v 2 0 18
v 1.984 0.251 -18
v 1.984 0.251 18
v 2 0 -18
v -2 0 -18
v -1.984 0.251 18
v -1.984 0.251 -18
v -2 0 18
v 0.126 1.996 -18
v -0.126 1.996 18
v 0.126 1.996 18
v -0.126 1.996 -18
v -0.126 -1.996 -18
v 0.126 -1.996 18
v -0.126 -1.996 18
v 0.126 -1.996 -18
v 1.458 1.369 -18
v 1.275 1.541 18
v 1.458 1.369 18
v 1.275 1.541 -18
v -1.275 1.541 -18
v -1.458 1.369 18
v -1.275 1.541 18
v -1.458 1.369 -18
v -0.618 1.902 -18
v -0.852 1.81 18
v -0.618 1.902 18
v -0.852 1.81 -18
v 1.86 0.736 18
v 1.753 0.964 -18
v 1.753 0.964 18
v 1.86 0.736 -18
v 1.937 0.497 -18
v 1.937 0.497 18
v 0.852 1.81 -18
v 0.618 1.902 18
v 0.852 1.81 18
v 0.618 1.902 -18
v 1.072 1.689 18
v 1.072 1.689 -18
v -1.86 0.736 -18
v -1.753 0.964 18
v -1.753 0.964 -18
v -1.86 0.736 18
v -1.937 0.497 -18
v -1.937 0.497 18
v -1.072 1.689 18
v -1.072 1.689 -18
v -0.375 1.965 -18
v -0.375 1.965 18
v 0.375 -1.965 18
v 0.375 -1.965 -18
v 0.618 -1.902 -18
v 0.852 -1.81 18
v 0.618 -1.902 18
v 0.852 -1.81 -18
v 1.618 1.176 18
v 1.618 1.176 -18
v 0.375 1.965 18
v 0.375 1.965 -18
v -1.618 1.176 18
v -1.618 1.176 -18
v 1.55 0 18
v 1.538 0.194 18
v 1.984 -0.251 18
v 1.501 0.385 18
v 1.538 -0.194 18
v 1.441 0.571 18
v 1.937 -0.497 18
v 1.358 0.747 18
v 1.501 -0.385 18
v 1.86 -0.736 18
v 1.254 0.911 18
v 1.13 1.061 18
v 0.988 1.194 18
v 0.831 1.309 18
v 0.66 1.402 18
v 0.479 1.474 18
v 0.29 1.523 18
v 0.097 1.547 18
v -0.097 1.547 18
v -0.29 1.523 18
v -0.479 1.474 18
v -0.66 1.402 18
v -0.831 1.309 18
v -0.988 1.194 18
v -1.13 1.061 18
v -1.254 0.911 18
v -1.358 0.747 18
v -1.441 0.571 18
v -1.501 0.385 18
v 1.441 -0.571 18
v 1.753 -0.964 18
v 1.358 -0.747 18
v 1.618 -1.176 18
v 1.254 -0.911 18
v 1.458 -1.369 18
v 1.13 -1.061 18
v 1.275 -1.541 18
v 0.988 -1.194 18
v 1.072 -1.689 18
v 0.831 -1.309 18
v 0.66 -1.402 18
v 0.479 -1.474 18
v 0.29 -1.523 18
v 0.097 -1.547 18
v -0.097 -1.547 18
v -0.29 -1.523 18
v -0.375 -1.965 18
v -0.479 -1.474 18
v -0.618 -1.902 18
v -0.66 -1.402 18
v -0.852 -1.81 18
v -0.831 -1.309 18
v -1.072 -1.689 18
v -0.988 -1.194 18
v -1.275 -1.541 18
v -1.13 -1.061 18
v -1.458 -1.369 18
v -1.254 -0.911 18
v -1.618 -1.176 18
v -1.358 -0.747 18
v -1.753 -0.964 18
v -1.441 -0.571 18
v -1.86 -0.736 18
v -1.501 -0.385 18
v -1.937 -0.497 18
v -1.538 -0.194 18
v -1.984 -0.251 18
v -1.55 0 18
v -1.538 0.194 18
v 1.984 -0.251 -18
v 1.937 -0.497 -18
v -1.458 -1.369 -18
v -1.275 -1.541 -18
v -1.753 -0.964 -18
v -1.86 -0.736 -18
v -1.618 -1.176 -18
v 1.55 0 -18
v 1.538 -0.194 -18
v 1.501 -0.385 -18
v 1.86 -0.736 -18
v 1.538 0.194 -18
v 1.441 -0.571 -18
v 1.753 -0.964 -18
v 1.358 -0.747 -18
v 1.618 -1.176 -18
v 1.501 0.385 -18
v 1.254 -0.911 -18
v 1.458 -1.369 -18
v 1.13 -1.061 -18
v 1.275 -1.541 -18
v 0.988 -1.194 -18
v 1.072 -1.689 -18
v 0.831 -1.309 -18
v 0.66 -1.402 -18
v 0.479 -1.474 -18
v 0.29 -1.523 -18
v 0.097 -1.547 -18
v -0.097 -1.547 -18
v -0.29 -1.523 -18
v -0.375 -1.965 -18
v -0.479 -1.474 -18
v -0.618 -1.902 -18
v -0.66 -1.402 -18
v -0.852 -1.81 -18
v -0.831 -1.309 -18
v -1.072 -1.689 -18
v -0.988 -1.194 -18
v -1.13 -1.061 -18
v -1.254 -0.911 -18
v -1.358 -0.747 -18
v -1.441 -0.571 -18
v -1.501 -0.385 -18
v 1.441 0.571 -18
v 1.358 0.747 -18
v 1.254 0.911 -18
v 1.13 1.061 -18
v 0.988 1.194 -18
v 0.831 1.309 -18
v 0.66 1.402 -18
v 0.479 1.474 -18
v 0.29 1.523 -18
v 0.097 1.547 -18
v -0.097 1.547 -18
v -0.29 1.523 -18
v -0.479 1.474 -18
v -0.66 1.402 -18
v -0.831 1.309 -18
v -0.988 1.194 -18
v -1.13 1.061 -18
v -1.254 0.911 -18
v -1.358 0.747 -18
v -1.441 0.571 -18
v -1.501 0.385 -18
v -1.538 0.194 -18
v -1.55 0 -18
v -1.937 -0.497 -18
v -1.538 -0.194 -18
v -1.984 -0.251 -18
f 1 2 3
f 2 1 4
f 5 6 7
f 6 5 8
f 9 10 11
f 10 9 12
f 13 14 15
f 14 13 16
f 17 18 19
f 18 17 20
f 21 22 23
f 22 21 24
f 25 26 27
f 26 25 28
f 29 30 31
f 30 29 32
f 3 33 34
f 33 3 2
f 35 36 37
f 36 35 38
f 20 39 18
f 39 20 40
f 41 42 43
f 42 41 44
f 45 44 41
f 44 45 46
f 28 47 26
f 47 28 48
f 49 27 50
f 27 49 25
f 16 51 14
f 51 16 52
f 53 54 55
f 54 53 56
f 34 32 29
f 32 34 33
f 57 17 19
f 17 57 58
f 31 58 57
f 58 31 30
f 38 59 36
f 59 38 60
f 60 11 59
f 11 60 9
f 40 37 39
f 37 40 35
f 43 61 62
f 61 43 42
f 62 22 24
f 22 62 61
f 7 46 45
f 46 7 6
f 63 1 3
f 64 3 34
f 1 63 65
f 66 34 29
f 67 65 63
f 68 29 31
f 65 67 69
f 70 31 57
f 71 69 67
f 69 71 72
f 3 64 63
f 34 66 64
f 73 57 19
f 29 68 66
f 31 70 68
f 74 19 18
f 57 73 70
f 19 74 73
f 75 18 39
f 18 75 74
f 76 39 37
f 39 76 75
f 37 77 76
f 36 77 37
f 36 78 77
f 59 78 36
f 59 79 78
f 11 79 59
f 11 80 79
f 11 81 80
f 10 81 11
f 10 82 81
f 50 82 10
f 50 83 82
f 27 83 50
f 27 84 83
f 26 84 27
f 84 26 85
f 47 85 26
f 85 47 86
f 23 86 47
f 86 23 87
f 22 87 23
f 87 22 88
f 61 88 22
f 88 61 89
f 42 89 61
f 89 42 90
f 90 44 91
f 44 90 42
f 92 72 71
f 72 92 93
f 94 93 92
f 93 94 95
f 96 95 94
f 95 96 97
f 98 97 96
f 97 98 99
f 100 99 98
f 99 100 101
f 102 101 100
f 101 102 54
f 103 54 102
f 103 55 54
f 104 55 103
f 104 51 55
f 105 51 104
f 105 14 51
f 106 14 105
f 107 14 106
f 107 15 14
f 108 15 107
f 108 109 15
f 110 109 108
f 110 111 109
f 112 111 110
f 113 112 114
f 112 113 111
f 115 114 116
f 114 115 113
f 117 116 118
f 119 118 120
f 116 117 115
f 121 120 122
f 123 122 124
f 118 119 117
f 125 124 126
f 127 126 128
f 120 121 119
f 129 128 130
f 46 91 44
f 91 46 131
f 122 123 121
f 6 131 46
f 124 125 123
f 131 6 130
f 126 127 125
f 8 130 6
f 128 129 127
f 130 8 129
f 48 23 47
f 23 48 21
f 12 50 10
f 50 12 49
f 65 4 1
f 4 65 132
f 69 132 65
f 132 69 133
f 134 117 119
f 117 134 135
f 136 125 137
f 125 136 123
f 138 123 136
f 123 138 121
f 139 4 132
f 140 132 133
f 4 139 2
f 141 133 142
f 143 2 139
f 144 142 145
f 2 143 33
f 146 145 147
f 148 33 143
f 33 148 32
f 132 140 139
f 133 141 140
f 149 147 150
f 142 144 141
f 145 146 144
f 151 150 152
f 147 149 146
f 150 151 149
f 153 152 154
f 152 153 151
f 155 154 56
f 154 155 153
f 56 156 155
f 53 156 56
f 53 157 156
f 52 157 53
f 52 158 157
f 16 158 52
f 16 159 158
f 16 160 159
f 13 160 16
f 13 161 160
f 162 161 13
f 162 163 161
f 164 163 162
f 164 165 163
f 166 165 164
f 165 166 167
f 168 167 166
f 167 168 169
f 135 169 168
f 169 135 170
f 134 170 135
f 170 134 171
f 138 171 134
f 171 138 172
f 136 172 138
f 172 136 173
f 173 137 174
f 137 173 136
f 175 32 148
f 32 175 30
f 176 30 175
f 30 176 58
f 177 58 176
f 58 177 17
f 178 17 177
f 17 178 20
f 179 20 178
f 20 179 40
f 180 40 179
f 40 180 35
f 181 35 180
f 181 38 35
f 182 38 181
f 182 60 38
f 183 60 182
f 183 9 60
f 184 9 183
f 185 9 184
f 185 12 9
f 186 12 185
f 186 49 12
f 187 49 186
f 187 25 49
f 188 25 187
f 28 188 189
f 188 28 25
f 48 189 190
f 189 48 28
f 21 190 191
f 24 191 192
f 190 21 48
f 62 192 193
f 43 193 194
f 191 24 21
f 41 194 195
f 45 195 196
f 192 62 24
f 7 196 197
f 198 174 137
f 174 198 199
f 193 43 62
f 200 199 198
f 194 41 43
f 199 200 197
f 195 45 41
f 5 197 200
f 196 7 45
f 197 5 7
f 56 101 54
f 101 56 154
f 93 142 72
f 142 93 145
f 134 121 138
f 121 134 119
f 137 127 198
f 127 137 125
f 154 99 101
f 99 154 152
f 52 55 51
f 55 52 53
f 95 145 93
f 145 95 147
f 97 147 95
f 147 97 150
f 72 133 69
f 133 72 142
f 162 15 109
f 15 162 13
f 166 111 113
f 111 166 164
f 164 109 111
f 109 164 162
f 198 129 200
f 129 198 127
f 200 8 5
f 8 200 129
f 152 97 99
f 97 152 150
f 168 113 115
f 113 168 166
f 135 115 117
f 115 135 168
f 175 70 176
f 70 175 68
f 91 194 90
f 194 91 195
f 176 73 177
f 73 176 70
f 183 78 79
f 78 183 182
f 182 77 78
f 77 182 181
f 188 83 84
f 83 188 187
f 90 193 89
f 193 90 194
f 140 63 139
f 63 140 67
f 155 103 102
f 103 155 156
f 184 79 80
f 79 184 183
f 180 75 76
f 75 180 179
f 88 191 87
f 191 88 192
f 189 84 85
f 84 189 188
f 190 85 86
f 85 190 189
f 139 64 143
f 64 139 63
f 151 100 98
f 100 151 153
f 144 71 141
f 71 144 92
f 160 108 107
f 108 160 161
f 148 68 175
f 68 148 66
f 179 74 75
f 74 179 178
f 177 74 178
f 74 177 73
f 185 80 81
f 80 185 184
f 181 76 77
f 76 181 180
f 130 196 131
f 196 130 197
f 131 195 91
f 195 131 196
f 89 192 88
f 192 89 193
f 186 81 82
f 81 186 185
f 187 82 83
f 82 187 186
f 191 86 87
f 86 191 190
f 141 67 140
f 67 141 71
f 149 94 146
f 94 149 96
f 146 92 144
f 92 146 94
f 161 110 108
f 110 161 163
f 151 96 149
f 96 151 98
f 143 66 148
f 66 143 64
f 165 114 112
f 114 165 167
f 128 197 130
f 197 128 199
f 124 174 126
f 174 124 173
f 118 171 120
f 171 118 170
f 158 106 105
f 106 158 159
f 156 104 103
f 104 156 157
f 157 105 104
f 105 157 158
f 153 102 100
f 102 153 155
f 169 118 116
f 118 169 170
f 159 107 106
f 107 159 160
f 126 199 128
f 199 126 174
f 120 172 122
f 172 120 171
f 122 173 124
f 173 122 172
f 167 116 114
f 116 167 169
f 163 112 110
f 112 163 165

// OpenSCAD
$fn = 50;


difference() {
	union() {
		translate(v = [0, 0, -18.0000000000]) {
			cylinder(h = 36, r = 2.0000000000);
		}
	}
	union() {
		translate(v = [0, 0, -100.0000000000]) {
			cylinder(h = 200, r = 1.5500000000);
		}
	}
}
